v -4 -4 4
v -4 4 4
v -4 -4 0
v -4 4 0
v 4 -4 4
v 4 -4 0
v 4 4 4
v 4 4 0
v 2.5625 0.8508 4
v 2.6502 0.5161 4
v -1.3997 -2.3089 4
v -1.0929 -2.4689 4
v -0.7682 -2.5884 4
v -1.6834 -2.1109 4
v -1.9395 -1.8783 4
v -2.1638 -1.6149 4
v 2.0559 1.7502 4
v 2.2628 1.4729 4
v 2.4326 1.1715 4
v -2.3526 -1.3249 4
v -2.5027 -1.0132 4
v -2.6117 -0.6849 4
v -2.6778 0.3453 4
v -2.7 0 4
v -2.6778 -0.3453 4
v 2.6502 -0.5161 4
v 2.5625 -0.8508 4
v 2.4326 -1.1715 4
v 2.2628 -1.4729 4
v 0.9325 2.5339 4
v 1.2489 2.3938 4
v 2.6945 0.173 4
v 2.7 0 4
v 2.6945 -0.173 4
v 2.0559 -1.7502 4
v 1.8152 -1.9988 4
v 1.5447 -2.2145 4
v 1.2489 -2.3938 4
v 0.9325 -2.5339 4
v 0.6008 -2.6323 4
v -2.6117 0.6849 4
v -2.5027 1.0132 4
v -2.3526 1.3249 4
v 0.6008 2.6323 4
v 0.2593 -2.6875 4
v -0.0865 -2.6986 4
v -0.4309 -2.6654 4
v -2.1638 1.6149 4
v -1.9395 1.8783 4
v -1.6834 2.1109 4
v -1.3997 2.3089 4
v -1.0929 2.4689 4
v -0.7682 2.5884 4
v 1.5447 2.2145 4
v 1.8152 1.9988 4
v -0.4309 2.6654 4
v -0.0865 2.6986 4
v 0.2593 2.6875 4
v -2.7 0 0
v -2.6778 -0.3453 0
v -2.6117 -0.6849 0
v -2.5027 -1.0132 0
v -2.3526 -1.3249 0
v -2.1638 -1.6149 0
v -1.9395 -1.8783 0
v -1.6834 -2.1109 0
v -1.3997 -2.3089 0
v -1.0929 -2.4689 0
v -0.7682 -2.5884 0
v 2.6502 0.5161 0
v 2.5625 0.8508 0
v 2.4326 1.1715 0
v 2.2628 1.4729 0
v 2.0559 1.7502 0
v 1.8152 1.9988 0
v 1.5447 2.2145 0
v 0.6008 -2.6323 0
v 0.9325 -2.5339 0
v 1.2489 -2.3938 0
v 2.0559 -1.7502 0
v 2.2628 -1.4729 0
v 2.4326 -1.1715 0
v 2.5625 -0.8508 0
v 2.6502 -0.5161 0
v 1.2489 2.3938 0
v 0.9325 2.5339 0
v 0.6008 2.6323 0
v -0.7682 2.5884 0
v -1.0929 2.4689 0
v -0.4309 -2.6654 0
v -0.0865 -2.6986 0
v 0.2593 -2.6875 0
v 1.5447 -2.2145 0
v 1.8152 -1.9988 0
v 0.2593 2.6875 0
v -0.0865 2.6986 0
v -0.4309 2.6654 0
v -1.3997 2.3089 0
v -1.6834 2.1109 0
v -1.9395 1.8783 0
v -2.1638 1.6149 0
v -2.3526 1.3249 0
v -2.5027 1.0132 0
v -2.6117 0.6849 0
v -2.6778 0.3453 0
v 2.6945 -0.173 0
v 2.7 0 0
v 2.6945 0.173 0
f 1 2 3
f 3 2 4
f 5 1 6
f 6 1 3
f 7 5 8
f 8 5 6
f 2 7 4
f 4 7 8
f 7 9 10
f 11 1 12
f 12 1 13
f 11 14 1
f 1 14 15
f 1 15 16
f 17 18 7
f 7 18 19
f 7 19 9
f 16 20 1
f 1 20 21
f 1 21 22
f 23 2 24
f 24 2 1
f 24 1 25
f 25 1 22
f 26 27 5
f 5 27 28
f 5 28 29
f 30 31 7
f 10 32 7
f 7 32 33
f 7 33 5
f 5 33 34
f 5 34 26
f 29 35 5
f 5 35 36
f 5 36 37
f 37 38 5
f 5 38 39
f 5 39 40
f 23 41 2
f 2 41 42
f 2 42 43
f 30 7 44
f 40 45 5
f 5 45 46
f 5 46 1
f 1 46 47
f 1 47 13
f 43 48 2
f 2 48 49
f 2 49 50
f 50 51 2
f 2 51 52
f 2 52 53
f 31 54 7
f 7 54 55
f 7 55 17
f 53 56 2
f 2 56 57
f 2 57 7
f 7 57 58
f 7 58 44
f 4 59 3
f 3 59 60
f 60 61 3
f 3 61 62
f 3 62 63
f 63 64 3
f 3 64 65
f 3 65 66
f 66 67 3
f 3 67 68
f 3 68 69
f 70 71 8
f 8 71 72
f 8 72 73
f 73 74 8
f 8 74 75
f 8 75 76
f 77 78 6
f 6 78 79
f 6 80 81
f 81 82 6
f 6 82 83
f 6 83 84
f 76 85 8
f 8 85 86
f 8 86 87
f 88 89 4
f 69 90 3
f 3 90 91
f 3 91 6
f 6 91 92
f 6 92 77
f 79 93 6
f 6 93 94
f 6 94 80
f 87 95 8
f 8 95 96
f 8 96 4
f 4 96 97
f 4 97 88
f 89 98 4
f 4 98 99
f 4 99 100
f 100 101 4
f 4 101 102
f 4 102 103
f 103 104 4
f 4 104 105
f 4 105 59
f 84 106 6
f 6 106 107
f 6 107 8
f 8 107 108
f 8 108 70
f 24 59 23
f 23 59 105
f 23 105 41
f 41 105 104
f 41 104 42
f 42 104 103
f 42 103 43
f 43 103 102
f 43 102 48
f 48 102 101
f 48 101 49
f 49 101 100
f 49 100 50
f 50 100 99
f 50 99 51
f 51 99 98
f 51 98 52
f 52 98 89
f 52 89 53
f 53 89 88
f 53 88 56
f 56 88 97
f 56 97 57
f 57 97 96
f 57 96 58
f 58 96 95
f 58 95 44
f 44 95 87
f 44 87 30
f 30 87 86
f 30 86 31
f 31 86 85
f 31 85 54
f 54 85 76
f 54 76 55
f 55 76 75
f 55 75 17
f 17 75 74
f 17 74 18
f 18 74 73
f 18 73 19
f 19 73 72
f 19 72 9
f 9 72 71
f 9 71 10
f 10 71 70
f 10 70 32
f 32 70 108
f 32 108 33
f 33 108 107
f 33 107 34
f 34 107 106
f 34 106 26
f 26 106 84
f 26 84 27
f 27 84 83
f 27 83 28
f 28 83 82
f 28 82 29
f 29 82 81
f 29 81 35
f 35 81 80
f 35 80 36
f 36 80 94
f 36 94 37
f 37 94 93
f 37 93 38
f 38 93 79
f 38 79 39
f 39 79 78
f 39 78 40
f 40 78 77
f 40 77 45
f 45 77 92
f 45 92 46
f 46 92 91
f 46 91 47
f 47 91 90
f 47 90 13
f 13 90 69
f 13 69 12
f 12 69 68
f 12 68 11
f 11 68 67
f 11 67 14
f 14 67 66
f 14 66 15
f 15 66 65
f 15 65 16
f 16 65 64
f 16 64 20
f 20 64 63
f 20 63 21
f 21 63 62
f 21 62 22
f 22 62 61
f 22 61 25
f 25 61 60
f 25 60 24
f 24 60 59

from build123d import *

# Parameters (mm, degrees)
SKETCH2_W                       = 8
SKETCH2_H                       = 8
REFERENCE_SQUARE_NUT_DEPTH      = 4
SKETCH3_R                       = 2.7
SIMPLIFIED_CLEARANCE_BORE_DEPTH = 4


with BuildPart() as part:
    # Sketch2 → Reference_square_nut (new body)
    with BuildSketch(Plane.XY):
        Rectangle(SKETCH2_W, SKETCH2_H)
    extrude(amount=REFERENCE_SQUARE_NUT_DEPTH)

    # Sketch3 → Simplified_clearance_bore (cut)
    with BuildSketch(Plane.XY):
        Circle(SKETCH3_R)
    extrude(amount=SIMPLIFIED_CLEARANCE_BORE_DEPTH, mode=Mode.SUBTRACT)


solid = part.part
